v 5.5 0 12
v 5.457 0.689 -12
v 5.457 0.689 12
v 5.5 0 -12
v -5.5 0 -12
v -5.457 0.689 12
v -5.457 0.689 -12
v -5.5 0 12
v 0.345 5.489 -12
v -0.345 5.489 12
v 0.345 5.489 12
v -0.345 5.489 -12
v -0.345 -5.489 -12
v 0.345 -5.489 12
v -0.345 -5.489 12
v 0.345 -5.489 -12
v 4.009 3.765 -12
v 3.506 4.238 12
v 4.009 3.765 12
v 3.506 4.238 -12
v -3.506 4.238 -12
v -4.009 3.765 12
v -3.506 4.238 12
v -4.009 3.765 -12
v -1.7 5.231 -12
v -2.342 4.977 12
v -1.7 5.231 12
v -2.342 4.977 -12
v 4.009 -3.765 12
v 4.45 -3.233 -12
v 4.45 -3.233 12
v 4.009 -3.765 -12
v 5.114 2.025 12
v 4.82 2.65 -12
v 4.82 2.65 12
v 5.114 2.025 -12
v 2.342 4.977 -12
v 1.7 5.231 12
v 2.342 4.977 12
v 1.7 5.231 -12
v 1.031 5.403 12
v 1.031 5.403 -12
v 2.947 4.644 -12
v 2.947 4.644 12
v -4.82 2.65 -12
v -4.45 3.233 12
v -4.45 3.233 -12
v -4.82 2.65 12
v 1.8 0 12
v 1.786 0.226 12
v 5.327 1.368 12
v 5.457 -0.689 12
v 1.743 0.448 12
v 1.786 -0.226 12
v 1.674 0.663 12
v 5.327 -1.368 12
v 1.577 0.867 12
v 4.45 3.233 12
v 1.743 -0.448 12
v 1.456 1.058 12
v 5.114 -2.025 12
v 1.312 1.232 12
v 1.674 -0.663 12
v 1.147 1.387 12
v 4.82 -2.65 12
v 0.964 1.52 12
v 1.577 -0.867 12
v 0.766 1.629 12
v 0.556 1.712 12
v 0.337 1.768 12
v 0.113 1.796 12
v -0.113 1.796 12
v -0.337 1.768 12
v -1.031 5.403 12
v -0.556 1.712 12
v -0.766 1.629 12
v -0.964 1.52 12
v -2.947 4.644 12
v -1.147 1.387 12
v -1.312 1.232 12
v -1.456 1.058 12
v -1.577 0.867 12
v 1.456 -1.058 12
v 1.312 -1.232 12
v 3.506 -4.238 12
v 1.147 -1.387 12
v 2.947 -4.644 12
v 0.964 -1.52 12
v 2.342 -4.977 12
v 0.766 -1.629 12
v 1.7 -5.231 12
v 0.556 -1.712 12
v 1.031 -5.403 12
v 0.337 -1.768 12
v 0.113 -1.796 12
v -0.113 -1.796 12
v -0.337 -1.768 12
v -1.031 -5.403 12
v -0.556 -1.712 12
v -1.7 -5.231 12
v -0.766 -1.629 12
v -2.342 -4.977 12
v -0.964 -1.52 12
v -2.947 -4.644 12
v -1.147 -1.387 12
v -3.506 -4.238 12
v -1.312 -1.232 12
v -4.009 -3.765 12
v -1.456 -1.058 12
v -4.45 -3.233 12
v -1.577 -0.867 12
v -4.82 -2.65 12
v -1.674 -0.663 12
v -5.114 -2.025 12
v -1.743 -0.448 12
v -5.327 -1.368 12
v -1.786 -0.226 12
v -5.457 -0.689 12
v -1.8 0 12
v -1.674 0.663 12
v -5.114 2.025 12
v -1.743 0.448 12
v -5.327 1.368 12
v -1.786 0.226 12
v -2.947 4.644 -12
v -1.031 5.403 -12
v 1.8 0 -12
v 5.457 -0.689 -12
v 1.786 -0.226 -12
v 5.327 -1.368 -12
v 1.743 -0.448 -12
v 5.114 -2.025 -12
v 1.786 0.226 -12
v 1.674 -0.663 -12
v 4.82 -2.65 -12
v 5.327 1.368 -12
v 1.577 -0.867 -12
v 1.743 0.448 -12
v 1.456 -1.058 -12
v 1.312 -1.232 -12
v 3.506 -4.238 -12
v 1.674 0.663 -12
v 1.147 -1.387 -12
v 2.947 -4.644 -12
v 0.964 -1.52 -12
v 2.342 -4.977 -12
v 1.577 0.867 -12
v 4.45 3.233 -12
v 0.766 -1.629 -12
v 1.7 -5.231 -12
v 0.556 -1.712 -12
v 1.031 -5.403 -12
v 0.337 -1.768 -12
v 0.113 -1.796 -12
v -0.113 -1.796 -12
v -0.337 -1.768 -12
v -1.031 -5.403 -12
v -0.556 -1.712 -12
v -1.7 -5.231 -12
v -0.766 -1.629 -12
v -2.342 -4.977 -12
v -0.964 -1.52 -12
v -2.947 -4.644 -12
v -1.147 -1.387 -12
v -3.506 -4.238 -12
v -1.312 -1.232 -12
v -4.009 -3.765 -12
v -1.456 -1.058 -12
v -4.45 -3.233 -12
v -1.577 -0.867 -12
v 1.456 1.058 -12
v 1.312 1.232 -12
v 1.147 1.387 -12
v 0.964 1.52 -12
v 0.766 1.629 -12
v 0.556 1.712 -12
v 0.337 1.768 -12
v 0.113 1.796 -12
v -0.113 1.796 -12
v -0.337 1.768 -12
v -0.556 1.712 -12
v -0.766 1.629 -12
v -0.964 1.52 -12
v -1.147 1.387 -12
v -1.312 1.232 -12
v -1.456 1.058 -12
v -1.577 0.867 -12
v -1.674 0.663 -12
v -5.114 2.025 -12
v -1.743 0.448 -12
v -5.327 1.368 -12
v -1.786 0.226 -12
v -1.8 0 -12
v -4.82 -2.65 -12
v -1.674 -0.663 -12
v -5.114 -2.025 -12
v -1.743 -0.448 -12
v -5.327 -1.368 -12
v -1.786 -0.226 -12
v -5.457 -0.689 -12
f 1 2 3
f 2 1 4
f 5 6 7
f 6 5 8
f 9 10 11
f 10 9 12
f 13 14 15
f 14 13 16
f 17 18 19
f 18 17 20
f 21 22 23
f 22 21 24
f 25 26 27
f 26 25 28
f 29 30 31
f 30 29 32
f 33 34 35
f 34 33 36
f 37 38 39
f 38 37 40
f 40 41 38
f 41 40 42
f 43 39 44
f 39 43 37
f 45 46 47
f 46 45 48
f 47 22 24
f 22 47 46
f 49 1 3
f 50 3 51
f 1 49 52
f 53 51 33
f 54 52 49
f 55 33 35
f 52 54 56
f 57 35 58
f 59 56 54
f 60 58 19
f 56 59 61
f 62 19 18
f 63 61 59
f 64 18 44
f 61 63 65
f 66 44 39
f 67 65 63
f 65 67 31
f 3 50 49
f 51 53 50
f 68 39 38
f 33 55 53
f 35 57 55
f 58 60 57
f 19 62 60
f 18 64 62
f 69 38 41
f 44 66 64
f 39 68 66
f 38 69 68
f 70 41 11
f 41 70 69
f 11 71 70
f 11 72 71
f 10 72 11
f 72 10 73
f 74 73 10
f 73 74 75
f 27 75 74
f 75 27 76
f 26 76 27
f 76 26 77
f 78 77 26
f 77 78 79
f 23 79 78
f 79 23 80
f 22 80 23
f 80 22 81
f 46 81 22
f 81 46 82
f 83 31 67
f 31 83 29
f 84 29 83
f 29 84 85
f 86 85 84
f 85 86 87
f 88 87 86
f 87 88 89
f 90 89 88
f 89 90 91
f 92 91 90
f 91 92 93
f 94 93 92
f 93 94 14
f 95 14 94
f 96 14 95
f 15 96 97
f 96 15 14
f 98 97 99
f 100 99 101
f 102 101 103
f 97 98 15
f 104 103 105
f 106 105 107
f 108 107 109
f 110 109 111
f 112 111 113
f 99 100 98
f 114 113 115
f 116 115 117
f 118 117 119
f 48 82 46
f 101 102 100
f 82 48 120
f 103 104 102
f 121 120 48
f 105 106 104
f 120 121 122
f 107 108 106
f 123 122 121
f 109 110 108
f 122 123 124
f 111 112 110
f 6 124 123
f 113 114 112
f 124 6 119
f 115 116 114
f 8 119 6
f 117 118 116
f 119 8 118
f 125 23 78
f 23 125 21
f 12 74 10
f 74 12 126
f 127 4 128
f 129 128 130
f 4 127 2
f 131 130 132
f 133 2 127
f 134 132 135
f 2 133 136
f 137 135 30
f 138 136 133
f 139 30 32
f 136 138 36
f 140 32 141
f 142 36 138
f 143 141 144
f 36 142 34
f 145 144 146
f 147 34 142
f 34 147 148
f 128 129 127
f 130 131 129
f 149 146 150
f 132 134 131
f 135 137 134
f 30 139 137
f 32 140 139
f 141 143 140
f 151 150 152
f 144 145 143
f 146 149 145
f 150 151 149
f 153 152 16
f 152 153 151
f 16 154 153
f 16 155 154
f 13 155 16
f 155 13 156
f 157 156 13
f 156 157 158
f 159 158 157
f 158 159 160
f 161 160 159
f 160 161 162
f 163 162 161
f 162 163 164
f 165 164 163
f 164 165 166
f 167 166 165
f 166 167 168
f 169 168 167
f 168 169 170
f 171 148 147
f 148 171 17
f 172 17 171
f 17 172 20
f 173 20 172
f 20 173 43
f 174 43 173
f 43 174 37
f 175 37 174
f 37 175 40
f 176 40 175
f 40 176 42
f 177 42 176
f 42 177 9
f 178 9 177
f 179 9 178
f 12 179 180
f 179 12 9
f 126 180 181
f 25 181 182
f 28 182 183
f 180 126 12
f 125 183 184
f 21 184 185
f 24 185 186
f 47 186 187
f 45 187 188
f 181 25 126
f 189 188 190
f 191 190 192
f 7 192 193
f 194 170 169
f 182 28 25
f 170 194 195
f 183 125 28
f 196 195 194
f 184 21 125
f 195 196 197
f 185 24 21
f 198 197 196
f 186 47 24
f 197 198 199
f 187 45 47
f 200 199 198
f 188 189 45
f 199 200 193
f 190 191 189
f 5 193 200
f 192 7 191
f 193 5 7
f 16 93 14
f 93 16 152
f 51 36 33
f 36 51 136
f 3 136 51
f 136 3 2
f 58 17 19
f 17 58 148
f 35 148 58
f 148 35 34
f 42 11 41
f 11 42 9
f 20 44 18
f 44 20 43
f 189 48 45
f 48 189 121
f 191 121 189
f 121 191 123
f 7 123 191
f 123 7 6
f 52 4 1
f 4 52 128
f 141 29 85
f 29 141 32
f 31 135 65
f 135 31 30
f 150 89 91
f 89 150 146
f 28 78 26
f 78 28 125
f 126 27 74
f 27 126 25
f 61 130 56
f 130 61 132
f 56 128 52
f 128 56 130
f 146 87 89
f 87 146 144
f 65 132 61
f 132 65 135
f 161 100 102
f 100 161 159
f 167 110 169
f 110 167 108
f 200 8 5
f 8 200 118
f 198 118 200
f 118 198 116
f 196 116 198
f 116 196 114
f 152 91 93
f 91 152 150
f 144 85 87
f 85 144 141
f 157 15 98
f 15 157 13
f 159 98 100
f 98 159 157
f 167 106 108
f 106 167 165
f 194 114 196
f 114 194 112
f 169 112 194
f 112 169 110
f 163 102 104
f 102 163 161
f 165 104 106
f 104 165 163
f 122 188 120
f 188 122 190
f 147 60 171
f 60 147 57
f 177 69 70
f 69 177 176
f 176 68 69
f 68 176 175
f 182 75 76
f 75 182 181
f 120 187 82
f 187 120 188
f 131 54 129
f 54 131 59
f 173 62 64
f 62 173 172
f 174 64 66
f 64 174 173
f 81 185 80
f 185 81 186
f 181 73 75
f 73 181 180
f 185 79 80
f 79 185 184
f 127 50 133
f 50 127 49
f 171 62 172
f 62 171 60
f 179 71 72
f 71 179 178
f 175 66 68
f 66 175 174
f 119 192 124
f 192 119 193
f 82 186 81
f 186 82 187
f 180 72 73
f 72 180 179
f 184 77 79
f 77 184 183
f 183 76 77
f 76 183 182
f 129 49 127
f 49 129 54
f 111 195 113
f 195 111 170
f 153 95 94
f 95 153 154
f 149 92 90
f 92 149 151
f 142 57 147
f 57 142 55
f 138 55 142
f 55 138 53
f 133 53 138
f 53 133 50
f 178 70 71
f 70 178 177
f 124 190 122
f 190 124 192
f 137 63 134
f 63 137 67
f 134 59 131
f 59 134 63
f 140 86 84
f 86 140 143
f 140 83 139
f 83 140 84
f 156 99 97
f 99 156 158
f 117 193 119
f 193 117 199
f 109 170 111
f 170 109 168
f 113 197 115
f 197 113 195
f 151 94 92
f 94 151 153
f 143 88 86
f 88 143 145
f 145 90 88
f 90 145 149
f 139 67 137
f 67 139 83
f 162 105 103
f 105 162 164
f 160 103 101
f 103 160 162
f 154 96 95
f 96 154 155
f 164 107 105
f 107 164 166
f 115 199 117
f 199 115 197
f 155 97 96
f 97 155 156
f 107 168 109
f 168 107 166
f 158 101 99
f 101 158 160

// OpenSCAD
$fn = 50;


difference() {
	union() {
		translate(v = [0, 0, -12.0000000000]) {
			cylinder(h = 24, r = 5.5000000000);
		}
	}
	union() {
		translate(v = [0, 0, -100.0000000000]) {
			cylinder(h = 200, r = 1.8000000000);
		}
	}
}
